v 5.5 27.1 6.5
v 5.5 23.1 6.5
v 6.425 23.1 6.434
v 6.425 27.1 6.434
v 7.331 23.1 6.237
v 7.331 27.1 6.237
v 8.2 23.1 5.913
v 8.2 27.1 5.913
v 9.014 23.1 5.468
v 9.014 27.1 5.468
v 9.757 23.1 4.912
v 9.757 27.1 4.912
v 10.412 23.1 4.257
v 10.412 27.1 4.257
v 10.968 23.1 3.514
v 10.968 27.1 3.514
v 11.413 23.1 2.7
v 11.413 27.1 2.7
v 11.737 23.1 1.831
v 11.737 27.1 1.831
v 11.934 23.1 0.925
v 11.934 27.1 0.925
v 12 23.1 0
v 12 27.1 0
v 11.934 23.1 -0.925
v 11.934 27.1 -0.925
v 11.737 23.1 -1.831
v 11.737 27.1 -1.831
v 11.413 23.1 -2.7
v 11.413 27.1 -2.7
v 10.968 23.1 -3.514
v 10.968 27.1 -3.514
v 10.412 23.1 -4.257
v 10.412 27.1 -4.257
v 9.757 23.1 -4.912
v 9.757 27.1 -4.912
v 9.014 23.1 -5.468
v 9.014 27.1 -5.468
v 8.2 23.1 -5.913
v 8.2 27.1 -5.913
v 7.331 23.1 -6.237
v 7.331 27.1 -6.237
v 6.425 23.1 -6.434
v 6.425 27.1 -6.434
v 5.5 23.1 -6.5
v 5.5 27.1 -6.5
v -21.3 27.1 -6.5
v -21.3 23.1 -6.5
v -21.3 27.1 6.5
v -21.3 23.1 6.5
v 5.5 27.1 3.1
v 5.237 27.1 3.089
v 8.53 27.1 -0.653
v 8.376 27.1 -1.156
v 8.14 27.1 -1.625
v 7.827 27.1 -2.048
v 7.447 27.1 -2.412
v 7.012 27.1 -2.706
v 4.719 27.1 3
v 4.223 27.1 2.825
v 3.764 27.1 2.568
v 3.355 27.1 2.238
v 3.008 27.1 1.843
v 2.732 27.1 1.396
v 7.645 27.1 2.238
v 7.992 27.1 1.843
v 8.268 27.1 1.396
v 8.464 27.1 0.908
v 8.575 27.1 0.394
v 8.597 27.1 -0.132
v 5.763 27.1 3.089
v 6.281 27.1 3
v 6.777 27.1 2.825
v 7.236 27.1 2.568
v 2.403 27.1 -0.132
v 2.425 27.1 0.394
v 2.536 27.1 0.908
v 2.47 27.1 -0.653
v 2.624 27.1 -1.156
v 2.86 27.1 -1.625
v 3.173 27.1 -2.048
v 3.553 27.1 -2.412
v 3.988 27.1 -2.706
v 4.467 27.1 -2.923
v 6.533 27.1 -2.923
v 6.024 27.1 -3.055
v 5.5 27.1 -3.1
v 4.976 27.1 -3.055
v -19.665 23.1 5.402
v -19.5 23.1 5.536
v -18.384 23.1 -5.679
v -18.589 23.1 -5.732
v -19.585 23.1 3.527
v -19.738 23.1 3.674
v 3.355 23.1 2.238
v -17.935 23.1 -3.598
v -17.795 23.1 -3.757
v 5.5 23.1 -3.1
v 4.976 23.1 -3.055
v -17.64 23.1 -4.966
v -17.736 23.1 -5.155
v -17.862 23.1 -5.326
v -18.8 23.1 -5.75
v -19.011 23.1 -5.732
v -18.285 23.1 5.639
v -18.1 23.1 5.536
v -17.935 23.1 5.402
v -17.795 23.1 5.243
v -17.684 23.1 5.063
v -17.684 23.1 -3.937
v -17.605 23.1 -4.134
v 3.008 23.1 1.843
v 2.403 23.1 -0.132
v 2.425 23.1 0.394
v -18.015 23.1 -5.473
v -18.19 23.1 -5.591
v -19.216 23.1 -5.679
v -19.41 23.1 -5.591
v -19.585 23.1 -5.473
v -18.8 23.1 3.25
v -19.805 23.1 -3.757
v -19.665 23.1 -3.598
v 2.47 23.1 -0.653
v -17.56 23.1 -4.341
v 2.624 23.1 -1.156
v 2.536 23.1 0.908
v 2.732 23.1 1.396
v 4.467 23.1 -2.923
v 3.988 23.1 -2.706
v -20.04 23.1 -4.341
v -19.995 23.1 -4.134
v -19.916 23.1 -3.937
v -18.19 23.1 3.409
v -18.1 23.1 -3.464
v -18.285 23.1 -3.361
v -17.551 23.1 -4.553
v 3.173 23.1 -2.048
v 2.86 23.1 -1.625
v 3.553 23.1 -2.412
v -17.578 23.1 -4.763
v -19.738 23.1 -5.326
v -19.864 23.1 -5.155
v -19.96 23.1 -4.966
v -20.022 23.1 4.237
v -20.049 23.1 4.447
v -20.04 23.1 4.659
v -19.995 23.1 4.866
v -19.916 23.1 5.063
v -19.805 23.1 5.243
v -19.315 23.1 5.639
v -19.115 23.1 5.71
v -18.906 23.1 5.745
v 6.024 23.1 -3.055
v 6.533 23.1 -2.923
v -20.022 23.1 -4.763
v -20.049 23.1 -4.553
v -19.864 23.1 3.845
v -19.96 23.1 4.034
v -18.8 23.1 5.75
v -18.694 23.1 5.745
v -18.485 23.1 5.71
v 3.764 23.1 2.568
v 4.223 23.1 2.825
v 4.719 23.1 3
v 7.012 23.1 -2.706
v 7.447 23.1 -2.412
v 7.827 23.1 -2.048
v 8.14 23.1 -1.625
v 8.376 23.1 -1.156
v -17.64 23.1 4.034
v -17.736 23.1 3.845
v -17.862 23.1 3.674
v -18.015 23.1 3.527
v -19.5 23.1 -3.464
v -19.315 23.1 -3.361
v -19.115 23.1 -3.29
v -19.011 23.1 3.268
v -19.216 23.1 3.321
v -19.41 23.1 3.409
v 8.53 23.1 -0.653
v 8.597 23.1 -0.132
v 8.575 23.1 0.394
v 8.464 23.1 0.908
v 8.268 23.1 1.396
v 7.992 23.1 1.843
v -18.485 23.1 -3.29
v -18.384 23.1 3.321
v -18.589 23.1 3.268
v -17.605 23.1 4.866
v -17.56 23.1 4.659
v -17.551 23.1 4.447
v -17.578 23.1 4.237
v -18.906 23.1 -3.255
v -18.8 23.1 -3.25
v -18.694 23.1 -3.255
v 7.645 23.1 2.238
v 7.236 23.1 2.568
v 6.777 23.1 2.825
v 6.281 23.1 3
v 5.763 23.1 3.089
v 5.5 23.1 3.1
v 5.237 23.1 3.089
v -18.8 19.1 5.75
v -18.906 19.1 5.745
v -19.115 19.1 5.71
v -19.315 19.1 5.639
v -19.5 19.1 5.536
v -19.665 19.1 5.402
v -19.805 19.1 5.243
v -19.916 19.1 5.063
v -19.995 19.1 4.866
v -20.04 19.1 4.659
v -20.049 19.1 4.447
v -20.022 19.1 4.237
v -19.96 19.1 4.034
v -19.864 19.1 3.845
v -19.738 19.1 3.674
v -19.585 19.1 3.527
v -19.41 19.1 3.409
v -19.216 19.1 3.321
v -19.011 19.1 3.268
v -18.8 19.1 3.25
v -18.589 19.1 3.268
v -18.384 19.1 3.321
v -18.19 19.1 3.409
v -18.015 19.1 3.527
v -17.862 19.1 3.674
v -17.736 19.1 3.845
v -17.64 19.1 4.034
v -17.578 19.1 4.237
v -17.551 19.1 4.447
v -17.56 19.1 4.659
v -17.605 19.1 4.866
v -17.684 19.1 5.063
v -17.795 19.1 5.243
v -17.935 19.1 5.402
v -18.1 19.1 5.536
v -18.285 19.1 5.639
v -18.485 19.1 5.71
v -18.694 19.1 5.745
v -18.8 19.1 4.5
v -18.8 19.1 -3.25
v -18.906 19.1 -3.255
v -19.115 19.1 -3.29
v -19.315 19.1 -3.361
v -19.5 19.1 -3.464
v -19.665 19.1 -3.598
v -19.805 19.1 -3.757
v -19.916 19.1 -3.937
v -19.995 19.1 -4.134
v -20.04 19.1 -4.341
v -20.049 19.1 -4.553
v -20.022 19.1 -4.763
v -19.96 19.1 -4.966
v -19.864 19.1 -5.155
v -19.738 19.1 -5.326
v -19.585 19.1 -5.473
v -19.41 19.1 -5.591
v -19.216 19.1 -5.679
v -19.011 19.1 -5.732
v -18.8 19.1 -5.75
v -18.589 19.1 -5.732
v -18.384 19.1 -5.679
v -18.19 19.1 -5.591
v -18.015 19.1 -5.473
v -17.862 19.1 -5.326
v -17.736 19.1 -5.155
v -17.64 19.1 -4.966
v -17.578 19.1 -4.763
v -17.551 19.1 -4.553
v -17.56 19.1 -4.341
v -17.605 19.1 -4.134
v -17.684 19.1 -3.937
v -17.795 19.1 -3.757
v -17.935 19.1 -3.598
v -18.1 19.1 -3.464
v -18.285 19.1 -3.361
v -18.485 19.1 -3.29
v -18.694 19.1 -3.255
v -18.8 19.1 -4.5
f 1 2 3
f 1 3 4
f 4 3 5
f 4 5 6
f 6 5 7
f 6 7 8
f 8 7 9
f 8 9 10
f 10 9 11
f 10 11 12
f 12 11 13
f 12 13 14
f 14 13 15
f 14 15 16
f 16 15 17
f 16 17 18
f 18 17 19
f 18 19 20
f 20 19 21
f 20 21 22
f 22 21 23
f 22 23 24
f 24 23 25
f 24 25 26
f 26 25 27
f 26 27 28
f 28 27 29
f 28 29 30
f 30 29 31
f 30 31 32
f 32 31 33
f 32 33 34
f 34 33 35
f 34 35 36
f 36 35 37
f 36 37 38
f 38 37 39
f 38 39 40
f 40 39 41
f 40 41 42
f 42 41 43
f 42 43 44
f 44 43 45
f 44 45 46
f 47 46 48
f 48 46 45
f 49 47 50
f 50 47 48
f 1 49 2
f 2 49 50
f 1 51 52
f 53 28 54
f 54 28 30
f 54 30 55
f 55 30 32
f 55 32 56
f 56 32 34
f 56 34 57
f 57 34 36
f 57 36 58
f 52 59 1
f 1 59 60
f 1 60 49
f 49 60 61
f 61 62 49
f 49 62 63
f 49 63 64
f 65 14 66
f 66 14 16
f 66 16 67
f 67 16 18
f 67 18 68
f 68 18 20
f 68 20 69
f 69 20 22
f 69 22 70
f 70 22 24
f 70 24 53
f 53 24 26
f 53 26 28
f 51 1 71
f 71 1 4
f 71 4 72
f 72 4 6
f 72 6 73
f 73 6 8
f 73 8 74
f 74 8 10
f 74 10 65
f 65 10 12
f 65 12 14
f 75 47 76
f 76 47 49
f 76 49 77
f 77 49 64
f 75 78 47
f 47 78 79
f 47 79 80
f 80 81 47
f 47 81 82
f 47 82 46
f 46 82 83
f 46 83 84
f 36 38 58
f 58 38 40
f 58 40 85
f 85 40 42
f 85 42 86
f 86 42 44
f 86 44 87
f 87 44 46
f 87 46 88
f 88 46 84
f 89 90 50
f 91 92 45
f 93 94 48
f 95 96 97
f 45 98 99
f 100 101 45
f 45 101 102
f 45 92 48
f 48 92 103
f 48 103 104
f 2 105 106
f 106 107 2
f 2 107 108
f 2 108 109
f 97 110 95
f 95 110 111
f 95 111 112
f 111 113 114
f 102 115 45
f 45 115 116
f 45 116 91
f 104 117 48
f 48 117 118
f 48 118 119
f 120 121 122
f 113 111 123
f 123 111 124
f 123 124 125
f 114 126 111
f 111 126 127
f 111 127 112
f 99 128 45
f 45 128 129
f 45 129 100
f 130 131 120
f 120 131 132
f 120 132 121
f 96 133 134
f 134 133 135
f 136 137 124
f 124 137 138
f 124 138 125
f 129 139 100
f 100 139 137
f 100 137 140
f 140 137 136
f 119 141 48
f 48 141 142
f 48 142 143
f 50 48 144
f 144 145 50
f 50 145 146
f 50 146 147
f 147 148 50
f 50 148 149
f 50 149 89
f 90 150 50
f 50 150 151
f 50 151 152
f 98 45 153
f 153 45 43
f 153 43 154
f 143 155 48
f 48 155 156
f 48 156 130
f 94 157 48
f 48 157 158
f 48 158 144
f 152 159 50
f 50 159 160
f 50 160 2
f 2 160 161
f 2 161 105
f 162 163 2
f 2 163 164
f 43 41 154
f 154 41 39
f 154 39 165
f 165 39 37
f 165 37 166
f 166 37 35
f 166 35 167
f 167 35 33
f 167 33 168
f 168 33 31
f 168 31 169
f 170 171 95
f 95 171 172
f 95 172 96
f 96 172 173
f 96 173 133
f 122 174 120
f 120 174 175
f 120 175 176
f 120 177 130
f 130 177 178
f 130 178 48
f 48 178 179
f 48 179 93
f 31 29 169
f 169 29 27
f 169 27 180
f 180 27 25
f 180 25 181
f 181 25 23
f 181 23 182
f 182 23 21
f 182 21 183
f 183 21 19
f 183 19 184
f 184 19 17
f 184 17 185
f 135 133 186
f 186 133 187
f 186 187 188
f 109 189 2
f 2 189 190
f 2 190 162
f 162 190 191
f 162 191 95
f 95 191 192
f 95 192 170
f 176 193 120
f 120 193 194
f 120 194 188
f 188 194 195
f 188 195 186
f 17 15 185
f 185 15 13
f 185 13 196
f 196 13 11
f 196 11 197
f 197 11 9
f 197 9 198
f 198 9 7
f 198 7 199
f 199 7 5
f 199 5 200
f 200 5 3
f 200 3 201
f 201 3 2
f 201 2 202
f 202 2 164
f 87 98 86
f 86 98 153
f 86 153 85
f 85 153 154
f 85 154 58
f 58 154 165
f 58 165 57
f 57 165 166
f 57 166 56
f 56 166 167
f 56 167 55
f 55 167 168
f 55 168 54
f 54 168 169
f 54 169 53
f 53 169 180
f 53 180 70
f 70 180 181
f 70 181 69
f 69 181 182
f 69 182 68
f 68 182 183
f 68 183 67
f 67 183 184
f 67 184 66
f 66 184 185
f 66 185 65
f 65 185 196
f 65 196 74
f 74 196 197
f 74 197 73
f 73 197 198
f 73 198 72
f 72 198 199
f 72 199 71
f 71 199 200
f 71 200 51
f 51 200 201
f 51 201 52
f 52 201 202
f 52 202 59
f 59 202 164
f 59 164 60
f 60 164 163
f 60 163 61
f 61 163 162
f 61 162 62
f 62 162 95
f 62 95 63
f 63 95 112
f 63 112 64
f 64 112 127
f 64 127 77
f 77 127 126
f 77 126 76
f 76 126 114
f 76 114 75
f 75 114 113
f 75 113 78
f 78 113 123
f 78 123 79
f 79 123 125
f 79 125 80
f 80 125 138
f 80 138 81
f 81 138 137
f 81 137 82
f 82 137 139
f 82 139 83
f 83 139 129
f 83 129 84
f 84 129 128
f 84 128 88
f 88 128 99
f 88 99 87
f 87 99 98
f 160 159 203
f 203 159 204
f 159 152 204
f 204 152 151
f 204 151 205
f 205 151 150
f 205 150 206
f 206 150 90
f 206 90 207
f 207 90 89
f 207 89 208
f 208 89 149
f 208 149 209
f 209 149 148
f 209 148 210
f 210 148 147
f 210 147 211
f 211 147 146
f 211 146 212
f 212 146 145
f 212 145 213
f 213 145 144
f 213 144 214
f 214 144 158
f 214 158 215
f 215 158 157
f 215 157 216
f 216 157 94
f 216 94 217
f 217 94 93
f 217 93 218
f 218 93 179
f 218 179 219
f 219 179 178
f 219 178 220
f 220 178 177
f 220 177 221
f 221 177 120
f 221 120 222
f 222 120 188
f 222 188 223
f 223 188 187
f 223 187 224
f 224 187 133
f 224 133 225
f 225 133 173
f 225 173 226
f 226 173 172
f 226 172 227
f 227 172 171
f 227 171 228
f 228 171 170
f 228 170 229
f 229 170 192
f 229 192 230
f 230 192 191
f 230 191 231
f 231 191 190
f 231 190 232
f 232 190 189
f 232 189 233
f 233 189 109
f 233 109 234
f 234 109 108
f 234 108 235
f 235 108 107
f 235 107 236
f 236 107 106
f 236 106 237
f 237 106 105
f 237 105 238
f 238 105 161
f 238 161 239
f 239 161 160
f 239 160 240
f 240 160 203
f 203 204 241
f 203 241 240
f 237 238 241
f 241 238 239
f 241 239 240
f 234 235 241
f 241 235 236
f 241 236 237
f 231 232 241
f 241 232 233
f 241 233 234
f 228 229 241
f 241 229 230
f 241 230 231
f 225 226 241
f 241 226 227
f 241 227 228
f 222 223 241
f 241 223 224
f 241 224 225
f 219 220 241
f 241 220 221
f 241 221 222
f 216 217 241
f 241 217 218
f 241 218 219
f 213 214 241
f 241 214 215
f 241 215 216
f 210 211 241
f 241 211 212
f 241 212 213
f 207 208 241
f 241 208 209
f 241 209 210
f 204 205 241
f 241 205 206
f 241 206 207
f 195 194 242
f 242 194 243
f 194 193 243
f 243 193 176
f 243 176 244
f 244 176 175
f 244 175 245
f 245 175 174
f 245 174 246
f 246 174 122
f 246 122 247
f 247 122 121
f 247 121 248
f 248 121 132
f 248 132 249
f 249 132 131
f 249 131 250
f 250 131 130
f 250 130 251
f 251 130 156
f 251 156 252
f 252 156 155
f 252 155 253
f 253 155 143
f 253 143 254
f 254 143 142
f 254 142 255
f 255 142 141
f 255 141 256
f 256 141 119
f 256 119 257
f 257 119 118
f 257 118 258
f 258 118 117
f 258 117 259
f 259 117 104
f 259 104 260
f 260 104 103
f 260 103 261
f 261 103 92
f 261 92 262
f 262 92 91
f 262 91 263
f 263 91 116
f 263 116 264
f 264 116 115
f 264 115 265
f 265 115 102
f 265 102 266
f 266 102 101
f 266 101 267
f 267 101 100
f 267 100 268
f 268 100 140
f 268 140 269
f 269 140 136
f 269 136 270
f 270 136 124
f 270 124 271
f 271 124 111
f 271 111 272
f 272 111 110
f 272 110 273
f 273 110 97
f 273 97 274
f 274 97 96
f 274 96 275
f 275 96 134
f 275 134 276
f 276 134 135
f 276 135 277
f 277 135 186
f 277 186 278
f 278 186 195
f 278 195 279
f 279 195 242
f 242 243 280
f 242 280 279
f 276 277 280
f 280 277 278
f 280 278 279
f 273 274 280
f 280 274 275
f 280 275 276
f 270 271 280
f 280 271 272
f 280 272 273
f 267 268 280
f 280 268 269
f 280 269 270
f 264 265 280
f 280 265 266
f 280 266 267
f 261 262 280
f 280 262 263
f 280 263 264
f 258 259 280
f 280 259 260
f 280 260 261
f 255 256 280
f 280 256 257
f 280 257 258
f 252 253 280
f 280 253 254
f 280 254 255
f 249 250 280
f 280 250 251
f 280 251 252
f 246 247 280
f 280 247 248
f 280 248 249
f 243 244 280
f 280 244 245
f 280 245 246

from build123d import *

# Parameters (mm, degrees)
BOSS_EXTRUDE1_DEPTH = 4
SKETCH2_R           = 3.1
CUT_EXTRUDE2_DEPTH  = 4
SKETCH3_R           = 1.25
BOSS_EXTRUDE2_DEPTH = 4


with BuildPart() as part:
    # Sketch1 → Boss-Extrude1 (new body)
    with BuildSketch(Plane(origin=(0, 23.1, 0), x_dir=(1, 0, 0), z_dir=(0, 1, 0))):
        with BuildLine():
            Line((5.5, 6.5), (-21.3, 6.5))
            Line((-21.3, 6.5), (-21.3, -6.5))
            Line((-21.3, -6.5), (5.5, -6.5))
            ThreePointArc((5.5, -6.5), (12, 0), (5.5, 6.5))
        make_face()
    extrude(amount=BOSS_EXTRUDE1_DEPTH)

    # Sketch2 → Cut-Extrude2 (cut)
    with BuildSketch(Plane(origin=(0, 23.1, 0), x_dir=(1, 0, 0), z_dir=(0, 1, 0))):
        with Locations(Location((5.5, 0, 0), (0, 0, 270))):
            Circle(SKETCH2_R)
    extrude(amount=CUT_EXTRUDE2_DEPTH, mode=Mode.SUBTRACT)

    # Sketch3 → Boss-Extrude2 (add)
    with BuildSketch(Plane(origin=(0, 19.1, 0), x_dir=(1, 0, 0), z_dir=(0, 1, 0))):
        with Locations(Location((-18.8, -4.5, 0), (0, 0, 270))):
            Circle(SKETCH3_R)
        with Locations(Location((-18.8, 4.5, 0), (0, 0, 270))):
            Circle(SKETCH3_R)
    extrude(amount=BOSS_EXTRUDE2_DEPTH)


solid = part.part
